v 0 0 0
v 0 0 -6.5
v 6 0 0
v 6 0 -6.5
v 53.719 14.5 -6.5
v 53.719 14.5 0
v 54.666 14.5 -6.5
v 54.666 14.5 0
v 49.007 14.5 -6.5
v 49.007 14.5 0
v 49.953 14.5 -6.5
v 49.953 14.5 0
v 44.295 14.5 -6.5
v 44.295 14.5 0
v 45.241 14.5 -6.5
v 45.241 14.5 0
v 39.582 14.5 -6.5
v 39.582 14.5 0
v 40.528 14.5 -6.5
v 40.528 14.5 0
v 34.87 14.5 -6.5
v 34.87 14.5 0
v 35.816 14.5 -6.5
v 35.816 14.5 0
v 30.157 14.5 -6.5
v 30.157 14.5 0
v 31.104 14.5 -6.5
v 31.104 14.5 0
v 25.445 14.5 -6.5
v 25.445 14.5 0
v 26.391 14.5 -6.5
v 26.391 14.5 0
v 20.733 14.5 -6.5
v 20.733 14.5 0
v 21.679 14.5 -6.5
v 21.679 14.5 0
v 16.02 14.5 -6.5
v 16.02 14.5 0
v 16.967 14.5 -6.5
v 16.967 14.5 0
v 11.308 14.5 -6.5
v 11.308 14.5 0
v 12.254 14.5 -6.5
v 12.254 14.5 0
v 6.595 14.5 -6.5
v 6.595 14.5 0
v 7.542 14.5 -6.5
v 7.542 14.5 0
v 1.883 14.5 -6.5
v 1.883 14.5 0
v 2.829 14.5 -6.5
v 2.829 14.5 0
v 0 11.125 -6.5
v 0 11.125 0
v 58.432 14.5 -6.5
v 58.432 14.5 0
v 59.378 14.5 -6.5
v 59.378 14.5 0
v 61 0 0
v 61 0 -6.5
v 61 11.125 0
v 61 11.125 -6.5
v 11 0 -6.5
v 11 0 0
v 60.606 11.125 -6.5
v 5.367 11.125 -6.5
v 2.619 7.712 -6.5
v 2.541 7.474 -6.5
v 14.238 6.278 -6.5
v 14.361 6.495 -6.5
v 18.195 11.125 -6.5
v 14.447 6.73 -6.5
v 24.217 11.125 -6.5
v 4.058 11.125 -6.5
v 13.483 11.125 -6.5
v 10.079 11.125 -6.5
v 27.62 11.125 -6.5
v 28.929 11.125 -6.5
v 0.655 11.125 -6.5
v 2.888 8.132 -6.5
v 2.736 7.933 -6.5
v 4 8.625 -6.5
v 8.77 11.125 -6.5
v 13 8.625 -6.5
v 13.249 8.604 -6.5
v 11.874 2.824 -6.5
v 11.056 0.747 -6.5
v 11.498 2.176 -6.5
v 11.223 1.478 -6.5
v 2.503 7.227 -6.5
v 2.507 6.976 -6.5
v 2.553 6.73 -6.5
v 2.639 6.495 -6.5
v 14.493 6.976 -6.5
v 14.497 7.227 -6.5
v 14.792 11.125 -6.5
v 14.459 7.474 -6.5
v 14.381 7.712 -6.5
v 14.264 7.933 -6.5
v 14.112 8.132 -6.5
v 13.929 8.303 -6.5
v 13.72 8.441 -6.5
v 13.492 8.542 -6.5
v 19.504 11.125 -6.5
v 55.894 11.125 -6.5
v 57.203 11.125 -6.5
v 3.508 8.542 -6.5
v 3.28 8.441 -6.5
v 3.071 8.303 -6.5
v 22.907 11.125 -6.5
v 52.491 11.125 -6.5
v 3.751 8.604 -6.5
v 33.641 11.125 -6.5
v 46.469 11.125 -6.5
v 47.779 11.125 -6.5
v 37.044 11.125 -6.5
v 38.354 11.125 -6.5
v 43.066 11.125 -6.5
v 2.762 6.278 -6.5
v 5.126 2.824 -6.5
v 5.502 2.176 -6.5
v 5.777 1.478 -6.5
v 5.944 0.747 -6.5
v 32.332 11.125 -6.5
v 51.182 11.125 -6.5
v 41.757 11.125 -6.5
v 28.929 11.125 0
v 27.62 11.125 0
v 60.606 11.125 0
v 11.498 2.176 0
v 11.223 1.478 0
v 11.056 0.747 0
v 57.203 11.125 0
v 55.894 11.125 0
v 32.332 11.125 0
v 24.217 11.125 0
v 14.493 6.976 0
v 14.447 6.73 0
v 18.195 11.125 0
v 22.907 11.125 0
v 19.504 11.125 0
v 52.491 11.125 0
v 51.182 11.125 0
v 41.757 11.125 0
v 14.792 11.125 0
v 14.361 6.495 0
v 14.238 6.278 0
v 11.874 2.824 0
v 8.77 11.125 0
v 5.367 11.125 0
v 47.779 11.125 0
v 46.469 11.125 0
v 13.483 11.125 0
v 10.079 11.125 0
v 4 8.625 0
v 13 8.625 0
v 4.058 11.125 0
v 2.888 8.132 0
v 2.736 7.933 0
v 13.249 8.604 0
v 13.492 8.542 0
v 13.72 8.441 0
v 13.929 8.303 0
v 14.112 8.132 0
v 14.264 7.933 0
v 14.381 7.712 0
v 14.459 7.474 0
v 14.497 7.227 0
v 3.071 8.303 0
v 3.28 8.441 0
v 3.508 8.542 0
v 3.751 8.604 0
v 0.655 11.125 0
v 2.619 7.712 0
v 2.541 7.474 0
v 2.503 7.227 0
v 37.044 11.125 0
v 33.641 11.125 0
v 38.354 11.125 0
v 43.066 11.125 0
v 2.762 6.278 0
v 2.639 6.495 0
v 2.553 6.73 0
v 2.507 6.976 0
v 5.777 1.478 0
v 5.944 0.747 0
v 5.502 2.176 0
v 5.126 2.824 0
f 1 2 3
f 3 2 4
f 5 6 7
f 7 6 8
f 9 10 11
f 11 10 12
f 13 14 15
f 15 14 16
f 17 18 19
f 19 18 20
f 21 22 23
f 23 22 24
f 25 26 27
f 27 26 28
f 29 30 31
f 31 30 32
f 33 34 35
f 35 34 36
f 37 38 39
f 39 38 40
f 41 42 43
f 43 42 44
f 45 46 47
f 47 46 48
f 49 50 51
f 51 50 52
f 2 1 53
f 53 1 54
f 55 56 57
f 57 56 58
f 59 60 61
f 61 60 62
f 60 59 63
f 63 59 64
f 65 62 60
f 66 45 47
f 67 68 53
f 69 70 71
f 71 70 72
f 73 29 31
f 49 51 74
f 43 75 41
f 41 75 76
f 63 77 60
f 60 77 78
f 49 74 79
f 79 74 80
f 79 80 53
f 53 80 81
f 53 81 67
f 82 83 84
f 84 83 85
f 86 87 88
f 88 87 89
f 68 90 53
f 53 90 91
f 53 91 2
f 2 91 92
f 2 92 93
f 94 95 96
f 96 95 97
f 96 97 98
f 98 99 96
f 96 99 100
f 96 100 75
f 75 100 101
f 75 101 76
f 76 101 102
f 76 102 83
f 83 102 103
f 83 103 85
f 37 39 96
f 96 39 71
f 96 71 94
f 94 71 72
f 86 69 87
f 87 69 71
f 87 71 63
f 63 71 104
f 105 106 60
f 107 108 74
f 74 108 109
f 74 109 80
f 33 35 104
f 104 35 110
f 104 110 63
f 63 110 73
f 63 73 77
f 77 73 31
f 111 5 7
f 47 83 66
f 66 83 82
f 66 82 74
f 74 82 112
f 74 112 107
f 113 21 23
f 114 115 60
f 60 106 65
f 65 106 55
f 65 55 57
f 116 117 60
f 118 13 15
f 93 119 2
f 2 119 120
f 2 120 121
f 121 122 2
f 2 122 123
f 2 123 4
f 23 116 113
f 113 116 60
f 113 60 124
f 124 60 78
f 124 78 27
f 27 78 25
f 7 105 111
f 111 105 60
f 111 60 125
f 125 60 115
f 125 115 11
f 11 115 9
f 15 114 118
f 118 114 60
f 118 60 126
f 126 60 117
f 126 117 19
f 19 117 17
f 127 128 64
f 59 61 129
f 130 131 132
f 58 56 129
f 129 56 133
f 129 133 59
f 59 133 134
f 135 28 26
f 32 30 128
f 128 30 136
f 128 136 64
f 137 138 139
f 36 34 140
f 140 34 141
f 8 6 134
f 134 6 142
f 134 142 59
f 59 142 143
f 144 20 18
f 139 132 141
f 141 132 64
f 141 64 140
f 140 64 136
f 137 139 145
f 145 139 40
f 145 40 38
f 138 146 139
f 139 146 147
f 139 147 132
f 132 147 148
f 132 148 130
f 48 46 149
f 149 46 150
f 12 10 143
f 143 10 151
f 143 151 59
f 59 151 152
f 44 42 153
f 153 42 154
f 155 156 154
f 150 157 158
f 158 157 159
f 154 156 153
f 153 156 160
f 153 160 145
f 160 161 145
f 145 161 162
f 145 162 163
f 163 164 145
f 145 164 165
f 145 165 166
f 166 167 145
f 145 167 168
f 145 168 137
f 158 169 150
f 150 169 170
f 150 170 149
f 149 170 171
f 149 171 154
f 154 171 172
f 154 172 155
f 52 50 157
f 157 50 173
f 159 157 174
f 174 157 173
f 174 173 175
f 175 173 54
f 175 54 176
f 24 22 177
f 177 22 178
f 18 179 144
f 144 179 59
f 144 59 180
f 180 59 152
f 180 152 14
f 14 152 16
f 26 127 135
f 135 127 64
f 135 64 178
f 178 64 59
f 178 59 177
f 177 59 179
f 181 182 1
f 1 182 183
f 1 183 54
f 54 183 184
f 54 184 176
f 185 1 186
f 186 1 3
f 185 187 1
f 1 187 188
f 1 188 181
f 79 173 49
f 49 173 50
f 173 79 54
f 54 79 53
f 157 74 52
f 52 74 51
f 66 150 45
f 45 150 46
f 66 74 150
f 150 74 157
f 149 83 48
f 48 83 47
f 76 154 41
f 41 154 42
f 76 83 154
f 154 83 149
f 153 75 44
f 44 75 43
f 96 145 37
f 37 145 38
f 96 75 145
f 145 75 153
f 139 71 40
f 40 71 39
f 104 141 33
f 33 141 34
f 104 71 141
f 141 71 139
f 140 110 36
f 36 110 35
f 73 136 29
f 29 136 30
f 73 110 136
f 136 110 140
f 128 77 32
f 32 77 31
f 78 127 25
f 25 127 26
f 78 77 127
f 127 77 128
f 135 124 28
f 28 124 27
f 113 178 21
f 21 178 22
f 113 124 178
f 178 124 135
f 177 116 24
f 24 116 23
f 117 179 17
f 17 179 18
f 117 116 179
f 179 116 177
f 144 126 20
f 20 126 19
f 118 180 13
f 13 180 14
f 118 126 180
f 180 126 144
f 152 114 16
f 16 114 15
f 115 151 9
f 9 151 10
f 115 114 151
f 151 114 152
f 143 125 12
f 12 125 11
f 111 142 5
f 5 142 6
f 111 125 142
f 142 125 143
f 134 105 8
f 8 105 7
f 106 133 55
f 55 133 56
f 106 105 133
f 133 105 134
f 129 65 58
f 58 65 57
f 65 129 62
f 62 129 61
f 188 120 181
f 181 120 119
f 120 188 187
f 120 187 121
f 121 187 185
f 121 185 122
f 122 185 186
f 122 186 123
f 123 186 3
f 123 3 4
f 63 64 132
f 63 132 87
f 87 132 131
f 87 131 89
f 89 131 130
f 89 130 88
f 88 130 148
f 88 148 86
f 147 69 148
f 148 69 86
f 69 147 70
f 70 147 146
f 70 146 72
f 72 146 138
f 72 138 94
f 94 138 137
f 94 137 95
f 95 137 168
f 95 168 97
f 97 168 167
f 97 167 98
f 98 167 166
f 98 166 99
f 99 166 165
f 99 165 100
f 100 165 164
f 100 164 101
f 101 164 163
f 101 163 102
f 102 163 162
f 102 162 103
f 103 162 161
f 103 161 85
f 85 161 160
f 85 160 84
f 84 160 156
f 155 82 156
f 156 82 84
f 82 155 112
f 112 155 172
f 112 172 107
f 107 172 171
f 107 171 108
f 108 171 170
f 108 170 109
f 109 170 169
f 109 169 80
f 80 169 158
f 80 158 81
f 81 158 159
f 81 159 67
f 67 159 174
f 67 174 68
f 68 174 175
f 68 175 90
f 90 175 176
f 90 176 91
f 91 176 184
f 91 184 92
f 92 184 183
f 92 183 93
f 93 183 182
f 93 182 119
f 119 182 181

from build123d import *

# Parameters (mm, degrees)
BLANKSKE_W        = 61
BLANKSKE_H        = 14.5
BLANK_DEPTH       = 6.5
TOOTHCUTSIM_DEPTH = 64.035704168
TEETHCUTS_COUNT   = 14
TEETHCUTS_PITCH   = 4.712388975
DOVETAIL_DEPTH    = 6.5


with BuildPart() as part:
    # BlankSke → Blank (new body)
    with BuildSketch(Plane.XY):
        with Locations((30.5, 7.25)):
            Rectangle(BLANKSKE_W, BLANKSKE_H)
    extrude(amount=-BLANK_DEPTH)

    # TooCutSkeSim → ToothCutSim (cut, through all)
    with BuildSketch(Plane.XY):
        Polygon((0.654653055, 11.125), (-0.654653055, 11.125), (-1.892297439, 14.5254), (1.892297439, 14.5254), align=None)
    toothcutsim = extrude(amount=-TOOTHCUTSIM_DEPTH, mode=Mode.SUBTRACT)

    # TeethCuts: ToothCutSim ×14
    with Locations(*[(i * TEETHCUTS_PITCH, 0, 0) for i in range(1, TEETHCUTS_COUNT)]):
        add(toothcutsim, mode=Mode.SUBTRACT)

    # Sketch2 → Dovetail (cut)
    with BuildSketch(Plane.XY):
        with BuildLine():
            Line((13, 8.625), (4, 8.625))
            ThreePointArc((4, 8.625), (2.673189596, 7.824695756), (2.762181855, 6.277765535))
            Line((2.762181855, 6.277765535), (5.126060485, 2.824114884))
            ThreePointArc((5.126060485, 2.824114884), (5.776520827, 1.478123401), (6, 0))
            Line((6, 0), (11, 0))
            ThreePointArc((11, 0), (11.223479173, 1.478123401), (11.873939515, 2.824114884))
            Line((11.873939515, 2.824114884), (14.237818145, 6.277765535))
            ThreePointArc((14.237818145, 6.277765535), (14.326810404, 7.824695756), (13, 8.625))
        make_face()
    extrude(amount=-DOVETAIL_DEPTH, mode=Mode.SUBTRACT)


solid = part.part
